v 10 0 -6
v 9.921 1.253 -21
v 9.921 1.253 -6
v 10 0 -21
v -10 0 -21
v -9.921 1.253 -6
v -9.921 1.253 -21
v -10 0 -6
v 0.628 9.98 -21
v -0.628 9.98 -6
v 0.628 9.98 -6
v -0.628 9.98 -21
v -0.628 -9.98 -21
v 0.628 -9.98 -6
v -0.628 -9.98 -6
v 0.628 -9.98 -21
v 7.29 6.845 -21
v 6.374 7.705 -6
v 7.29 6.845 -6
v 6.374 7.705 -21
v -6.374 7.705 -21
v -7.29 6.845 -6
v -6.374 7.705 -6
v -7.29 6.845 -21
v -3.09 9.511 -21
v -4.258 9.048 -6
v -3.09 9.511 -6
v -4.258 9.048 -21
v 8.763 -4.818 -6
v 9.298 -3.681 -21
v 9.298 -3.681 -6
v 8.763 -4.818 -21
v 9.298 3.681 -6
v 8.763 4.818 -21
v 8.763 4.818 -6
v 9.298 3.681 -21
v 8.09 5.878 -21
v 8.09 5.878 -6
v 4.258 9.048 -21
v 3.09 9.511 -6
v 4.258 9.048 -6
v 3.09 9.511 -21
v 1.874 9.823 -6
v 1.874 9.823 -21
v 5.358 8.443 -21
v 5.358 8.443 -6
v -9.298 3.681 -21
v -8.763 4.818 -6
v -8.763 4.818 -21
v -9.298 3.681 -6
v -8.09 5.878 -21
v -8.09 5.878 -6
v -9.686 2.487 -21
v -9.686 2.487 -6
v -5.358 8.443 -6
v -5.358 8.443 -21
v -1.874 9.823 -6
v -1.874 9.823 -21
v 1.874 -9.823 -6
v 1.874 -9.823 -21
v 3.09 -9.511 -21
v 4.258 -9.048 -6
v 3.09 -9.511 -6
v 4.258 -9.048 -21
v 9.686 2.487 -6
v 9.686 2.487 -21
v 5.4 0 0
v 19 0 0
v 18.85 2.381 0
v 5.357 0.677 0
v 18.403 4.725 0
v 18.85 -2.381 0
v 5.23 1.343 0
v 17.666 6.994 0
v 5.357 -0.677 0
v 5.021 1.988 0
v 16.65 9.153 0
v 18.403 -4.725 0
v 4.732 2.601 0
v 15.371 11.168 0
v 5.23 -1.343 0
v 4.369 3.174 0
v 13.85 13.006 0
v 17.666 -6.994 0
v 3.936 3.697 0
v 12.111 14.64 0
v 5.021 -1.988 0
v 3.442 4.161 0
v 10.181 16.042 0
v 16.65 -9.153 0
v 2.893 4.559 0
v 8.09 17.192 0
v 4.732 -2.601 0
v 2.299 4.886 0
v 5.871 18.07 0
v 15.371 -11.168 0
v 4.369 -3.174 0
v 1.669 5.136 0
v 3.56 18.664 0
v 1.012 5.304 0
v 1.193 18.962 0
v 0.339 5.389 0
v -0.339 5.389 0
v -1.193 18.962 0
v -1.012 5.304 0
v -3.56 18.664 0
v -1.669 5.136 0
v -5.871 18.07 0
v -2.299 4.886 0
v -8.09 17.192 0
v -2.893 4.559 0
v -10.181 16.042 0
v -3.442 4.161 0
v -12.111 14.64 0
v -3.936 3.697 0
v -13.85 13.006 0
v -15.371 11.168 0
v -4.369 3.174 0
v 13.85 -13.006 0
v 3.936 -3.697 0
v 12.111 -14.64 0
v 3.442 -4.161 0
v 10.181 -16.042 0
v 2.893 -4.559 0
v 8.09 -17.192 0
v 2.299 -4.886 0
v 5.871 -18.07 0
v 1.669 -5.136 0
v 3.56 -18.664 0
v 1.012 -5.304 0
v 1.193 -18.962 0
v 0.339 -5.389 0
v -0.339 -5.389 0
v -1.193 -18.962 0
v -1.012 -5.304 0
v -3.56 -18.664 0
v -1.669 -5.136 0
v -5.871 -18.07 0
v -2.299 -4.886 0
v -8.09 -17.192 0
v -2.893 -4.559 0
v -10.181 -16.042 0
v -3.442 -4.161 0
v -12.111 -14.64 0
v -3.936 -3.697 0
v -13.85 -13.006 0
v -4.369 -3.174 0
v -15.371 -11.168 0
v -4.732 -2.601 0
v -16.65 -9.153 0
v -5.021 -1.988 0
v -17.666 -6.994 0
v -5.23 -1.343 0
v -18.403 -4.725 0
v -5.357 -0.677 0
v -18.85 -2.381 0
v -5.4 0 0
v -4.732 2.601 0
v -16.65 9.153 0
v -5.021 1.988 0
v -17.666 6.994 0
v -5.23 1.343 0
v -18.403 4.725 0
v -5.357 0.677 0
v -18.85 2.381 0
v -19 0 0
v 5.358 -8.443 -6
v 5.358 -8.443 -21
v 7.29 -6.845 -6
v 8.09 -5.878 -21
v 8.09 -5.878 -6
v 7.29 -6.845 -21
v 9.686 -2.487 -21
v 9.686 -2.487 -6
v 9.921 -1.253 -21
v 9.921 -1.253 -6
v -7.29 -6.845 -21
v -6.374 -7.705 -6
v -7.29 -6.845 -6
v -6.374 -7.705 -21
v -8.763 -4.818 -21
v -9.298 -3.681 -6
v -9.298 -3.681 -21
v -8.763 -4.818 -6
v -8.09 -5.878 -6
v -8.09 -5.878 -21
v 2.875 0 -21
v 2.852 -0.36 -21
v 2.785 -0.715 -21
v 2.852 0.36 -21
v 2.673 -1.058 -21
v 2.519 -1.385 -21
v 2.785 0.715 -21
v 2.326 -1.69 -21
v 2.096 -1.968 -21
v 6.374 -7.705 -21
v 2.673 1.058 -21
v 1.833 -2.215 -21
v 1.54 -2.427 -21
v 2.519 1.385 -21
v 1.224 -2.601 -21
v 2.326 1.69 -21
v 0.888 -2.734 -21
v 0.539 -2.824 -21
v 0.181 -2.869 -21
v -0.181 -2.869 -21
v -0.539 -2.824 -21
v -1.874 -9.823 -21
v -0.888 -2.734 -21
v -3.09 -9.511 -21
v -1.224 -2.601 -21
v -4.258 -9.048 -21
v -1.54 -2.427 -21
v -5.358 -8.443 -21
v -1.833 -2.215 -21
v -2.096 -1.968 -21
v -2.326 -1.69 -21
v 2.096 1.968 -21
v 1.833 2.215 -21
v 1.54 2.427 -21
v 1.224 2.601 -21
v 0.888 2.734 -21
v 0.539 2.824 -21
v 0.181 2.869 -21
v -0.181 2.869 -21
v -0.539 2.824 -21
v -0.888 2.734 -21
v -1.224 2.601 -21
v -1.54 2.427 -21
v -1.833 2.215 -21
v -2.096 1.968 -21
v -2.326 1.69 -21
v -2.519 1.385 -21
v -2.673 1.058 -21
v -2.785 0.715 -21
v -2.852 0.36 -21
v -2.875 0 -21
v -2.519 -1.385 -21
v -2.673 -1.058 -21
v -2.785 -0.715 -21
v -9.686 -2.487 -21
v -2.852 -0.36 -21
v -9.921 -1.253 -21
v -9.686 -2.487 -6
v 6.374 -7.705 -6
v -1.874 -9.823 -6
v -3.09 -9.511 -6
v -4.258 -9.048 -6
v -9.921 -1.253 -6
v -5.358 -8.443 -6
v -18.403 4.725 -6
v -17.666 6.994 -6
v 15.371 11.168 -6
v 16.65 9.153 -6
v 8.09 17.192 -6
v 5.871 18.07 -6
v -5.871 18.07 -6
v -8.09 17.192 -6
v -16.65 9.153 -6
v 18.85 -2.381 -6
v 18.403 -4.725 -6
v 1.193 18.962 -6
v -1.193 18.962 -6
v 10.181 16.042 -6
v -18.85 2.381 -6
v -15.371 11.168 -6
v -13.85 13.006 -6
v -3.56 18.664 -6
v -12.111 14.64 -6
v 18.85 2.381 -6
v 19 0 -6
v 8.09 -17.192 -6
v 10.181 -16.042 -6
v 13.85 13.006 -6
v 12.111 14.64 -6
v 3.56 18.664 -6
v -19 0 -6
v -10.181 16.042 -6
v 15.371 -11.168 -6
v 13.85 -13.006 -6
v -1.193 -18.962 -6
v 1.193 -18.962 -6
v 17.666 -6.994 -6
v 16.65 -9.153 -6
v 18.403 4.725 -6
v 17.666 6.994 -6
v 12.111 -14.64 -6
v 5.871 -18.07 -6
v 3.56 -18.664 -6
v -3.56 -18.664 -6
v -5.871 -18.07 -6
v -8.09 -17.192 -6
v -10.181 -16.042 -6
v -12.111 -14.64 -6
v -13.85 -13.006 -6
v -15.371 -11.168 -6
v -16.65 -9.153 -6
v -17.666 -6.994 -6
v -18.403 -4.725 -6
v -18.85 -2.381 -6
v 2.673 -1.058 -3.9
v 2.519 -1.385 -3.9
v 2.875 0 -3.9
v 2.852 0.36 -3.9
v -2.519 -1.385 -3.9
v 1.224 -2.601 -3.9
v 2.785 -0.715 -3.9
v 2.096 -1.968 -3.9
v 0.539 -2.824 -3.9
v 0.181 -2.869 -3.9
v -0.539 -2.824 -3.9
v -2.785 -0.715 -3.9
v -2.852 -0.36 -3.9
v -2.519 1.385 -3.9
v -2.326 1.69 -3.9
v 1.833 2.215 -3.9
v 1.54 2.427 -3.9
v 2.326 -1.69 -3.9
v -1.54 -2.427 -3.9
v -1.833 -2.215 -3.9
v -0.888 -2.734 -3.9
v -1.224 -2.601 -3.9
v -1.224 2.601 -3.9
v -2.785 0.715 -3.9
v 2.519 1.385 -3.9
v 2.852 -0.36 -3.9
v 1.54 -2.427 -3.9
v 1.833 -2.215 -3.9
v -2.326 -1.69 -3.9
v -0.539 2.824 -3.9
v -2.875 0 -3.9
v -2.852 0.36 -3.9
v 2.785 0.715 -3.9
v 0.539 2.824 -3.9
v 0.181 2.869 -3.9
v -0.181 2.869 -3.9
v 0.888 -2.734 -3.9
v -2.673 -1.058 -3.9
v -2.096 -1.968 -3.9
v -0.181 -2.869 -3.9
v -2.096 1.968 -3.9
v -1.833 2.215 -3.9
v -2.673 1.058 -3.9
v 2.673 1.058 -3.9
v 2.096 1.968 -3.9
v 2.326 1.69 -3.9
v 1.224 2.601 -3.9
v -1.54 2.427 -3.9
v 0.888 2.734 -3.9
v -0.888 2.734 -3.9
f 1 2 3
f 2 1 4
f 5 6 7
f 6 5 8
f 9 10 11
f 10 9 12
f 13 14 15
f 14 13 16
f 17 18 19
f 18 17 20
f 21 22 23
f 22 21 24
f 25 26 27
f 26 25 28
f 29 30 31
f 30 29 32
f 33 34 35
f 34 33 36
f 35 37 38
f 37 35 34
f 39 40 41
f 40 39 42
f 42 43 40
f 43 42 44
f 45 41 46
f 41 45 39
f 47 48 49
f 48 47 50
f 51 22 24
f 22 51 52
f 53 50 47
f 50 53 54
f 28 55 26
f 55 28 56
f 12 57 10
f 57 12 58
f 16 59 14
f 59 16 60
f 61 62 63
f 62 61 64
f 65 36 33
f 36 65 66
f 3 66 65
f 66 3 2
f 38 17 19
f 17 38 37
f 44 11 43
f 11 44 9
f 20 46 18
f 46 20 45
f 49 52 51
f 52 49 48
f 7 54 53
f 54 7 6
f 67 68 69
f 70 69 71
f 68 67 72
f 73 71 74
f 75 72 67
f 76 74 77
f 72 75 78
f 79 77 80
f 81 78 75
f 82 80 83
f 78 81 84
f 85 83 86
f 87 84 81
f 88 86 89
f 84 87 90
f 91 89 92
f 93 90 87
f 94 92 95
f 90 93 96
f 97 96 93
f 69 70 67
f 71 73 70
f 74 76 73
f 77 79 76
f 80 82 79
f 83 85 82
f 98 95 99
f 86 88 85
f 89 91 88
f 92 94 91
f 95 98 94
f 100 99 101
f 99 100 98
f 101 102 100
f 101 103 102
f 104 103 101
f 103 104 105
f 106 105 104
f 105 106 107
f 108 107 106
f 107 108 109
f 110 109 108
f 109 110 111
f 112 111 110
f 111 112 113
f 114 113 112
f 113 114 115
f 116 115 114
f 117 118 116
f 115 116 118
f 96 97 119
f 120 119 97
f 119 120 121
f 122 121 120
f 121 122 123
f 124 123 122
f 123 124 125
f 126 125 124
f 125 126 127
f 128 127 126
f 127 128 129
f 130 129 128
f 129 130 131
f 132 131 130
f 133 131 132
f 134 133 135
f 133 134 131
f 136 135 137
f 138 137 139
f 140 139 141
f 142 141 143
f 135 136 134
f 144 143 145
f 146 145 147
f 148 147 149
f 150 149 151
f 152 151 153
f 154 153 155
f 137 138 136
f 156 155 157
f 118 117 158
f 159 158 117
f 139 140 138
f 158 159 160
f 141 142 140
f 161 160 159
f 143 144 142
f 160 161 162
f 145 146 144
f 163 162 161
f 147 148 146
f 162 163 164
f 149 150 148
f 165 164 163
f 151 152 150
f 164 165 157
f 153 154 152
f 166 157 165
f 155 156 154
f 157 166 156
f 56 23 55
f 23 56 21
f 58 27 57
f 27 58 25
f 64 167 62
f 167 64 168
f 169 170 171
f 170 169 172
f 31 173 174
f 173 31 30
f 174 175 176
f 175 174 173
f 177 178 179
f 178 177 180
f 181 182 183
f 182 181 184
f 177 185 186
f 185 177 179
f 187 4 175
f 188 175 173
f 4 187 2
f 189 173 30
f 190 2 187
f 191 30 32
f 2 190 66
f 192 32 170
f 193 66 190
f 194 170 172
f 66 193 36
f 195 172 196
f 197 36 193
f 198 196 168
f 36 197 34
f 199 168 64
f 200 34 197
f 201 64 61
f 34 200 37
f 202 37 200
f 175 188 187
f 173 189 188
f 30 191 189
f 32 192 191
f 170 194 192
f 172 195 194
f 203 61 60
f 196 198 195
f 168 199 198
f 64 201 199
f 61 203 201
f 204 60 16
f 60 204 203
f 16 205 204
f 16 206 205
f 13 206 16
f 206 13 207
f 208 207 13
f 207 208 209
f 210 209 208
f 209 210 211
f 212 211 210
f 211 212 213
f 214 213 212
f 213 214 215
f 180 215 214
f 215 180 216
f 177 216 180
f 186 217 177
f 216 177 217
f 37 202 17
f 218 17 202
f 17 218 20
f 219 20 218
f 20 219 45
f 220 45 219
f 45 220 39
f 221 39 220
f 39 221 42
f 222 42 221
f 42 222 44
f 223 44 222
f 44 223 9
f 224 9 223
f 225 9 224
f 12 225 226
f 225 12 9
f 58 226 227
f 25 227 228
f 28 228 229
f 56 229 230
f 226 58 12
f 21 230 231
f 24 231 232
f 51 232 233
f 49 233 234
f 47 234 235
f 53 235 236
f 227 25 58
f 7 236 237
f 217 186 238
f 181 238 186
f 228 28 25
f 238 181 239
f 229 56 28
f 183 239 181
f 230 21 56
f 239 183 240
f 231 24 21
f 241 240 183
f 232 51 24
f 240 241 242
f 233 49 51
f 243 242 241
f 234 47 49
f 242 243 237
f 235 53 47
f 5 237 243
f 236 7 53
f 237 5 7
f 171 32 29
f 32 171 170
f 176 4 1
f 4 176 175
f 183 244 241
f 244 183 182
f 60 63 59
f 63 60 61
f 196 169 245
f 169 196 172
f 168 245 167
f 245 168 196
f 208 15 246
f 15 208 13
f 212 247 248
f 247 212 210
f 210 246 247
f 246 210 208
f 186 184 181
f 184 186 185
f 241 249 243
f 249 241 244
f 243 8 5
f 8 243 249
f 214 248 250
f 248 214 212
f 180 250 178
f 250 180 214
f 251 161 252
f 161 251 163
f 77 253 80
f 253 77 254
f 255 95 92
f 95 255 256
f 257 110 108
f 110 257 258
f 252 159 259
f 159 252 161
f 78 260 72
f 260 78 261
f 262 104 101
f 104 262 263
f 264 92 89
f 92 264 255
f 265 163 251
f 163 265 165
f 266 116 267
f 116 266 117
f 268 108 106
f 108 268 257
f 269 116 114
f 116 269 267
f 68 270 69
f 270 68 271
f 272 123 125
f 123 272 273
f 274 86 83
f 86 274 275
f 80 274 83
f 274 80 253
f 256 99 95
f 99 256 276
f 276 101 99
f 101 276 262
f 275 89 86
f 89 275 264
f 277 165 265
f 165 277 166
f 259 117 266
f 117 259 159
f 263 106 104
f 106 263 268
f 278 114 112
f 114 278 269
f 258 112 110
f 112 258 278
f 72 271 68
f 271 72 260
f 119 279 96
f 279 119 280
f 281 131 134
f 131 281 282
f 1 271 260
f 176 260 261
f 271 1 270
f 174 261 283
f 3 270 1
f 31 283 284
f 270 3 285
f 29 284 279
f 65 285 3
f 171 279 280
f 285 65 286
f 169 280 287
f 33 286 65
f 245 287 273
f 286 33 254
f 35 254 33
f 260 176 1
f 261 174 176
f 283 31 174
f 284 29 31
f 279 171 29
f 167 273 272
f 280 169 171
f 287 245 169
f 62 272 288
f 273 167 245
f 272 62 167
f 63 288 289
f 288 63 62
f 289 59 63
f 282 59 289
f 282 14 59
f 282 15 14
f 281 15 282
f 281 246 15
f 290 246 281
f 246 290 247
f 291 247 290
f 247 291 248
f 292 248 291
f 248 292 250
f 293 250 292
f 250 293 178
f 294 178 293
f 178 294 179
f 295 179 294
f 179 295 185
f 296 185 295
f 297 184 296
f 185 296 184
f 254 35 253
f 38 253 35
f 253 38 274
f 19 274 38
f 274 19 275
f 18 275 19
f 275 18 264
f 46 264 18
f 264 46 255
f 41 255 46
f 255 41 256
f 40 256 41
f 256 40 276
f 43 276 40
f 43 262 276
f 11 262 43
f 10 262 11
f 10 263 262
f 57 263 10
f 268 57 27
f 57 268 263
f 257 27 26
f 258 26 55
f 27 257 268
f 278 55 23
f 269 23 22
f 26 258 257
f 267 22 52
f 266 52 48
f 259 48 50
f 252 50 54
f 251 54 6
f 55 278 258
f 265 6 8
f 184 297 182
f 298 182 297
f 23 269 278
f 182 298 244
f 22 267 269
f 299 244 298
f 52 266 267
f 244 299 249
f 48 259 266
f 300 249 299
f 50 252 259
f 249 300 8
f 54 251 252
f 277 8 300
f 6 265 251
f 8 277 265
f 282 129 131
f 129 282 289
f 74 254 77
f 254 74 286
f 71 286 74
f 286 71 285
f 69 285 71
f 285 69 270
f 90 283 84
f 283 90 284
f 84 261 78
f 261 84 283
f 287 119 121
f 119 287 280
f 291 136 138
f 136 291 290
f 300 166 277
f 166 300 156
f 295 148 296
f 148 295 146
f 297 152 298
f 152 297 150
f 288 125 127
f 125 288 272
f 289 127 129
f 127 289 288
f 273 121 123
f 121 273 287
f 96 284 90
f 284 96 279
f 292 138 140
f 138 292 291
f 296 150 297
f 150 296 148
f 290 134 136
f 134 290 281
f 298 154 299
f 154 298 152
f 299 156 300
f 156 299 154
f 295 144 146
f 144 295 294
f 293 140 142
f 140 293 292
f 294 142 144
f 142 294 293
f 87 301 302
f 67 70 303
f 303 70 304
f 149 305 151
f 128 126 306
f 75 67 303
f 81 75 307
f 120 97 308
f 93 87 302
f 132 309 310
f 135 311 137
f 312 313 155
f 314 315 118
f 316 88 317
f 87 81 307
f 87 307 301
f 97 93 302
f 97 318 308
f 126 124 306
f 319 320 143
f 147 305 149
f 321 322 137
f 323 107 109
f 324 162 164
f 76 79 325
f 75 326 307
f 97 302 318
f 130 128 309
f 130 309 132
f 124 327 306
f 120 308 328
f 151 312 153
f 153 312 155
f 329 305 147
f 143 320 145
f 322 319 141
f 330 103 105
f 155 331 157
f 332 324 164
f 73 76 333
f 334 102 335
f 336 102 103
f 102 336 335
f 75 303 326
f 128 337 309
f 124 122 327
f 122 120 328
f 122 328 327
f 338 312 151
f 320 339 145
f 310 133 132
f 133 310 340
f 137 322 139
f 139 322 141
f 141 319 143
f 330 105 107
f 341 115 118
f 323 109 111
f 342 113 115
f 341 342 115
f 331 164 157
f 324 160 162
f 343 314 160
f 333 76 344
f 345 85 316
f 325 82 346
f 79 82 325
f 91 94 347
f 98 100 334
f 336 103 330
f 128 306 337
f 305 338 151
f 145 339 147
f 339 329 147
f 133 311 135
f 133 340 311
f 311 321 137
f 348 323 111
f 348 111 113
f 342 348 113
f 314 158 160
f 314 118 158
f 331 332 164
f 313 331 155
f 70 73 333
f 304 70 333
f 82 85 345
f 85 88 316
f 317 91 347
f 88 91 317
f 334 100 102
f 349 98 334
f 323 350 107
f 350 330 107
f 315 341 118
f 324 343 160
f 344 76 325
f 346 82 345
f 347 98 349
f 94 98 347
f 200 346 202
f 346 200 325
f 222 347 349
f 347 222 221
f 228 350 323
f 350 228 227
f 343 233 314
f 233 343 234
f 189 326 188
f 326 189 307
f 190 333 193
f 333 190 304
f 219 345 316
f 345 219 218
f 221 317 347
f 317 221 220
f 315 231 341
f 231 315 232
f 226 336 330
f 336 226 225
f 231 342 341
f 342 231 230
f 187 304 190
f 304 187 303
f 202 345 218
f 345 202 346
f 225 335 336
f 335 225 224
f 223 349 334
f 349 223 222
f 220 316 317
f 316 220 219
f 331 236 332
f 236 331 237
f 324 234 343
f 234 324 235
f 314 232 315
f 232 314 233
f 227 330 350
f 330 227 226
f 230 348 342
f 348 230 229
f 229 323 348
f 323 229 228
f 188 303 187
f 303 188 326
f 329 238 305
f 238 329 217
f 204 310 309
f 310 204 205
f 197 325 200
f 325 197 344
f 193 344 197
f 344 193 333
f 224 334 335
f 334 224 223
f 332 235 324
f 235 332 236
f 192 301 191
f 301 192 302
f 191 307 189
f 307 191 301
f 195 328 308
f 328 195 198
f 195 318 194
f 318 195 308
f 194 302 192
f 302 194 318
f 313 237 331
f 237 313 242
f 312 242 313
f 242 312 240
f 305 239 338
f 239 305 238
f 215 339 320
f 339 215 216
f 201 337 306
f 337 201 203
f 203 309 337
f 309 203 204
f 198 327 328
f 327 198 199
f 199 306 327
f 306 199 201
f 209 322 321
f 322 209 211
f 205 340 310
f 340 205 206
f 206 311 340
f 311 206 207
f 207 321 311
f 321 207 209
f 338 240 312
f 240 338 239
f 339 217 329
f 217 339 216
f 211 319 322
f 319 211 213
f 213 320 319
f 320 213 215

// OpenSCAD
$fn = 50;


difference() {
	union() {
		translate(v = [0, 0, -21.0000000000]) {
			cylinder(h = 21, r = 10.0000000000);
		}
		translate(v = [0, 0, -6.0000000000]) {
			cylinder(h = 6, r = 19.0000000000);
		}
	}
	union() {
		translate(v = [0, 0, 0]) {
			rotate(a = [0, 0, 0]) {
				difference() {
					union() {
						#translate(v = [0, 0, -21.0000000000]) {
							cylinder(h = 21, r = 2.6000000000);
						}
						#translate(v = [0, 0, -3.9000000000]) {
							cylinder(h = 3.9000000000, r = 10.0000000000, r1 = 2.8750000000, r2 = 5.4000000000);
						}
						#translate(v = [0, 0, -21.0000000000]) {
							cylinder(h = 21, r = 2.8750000000);
						}
						#translate(v = [0, 0, -21.0000000000]) {
							cylinder(h = 21, r = 2.6000000000);
						}
					}
					union();
				}
			}
		}
	}
}
